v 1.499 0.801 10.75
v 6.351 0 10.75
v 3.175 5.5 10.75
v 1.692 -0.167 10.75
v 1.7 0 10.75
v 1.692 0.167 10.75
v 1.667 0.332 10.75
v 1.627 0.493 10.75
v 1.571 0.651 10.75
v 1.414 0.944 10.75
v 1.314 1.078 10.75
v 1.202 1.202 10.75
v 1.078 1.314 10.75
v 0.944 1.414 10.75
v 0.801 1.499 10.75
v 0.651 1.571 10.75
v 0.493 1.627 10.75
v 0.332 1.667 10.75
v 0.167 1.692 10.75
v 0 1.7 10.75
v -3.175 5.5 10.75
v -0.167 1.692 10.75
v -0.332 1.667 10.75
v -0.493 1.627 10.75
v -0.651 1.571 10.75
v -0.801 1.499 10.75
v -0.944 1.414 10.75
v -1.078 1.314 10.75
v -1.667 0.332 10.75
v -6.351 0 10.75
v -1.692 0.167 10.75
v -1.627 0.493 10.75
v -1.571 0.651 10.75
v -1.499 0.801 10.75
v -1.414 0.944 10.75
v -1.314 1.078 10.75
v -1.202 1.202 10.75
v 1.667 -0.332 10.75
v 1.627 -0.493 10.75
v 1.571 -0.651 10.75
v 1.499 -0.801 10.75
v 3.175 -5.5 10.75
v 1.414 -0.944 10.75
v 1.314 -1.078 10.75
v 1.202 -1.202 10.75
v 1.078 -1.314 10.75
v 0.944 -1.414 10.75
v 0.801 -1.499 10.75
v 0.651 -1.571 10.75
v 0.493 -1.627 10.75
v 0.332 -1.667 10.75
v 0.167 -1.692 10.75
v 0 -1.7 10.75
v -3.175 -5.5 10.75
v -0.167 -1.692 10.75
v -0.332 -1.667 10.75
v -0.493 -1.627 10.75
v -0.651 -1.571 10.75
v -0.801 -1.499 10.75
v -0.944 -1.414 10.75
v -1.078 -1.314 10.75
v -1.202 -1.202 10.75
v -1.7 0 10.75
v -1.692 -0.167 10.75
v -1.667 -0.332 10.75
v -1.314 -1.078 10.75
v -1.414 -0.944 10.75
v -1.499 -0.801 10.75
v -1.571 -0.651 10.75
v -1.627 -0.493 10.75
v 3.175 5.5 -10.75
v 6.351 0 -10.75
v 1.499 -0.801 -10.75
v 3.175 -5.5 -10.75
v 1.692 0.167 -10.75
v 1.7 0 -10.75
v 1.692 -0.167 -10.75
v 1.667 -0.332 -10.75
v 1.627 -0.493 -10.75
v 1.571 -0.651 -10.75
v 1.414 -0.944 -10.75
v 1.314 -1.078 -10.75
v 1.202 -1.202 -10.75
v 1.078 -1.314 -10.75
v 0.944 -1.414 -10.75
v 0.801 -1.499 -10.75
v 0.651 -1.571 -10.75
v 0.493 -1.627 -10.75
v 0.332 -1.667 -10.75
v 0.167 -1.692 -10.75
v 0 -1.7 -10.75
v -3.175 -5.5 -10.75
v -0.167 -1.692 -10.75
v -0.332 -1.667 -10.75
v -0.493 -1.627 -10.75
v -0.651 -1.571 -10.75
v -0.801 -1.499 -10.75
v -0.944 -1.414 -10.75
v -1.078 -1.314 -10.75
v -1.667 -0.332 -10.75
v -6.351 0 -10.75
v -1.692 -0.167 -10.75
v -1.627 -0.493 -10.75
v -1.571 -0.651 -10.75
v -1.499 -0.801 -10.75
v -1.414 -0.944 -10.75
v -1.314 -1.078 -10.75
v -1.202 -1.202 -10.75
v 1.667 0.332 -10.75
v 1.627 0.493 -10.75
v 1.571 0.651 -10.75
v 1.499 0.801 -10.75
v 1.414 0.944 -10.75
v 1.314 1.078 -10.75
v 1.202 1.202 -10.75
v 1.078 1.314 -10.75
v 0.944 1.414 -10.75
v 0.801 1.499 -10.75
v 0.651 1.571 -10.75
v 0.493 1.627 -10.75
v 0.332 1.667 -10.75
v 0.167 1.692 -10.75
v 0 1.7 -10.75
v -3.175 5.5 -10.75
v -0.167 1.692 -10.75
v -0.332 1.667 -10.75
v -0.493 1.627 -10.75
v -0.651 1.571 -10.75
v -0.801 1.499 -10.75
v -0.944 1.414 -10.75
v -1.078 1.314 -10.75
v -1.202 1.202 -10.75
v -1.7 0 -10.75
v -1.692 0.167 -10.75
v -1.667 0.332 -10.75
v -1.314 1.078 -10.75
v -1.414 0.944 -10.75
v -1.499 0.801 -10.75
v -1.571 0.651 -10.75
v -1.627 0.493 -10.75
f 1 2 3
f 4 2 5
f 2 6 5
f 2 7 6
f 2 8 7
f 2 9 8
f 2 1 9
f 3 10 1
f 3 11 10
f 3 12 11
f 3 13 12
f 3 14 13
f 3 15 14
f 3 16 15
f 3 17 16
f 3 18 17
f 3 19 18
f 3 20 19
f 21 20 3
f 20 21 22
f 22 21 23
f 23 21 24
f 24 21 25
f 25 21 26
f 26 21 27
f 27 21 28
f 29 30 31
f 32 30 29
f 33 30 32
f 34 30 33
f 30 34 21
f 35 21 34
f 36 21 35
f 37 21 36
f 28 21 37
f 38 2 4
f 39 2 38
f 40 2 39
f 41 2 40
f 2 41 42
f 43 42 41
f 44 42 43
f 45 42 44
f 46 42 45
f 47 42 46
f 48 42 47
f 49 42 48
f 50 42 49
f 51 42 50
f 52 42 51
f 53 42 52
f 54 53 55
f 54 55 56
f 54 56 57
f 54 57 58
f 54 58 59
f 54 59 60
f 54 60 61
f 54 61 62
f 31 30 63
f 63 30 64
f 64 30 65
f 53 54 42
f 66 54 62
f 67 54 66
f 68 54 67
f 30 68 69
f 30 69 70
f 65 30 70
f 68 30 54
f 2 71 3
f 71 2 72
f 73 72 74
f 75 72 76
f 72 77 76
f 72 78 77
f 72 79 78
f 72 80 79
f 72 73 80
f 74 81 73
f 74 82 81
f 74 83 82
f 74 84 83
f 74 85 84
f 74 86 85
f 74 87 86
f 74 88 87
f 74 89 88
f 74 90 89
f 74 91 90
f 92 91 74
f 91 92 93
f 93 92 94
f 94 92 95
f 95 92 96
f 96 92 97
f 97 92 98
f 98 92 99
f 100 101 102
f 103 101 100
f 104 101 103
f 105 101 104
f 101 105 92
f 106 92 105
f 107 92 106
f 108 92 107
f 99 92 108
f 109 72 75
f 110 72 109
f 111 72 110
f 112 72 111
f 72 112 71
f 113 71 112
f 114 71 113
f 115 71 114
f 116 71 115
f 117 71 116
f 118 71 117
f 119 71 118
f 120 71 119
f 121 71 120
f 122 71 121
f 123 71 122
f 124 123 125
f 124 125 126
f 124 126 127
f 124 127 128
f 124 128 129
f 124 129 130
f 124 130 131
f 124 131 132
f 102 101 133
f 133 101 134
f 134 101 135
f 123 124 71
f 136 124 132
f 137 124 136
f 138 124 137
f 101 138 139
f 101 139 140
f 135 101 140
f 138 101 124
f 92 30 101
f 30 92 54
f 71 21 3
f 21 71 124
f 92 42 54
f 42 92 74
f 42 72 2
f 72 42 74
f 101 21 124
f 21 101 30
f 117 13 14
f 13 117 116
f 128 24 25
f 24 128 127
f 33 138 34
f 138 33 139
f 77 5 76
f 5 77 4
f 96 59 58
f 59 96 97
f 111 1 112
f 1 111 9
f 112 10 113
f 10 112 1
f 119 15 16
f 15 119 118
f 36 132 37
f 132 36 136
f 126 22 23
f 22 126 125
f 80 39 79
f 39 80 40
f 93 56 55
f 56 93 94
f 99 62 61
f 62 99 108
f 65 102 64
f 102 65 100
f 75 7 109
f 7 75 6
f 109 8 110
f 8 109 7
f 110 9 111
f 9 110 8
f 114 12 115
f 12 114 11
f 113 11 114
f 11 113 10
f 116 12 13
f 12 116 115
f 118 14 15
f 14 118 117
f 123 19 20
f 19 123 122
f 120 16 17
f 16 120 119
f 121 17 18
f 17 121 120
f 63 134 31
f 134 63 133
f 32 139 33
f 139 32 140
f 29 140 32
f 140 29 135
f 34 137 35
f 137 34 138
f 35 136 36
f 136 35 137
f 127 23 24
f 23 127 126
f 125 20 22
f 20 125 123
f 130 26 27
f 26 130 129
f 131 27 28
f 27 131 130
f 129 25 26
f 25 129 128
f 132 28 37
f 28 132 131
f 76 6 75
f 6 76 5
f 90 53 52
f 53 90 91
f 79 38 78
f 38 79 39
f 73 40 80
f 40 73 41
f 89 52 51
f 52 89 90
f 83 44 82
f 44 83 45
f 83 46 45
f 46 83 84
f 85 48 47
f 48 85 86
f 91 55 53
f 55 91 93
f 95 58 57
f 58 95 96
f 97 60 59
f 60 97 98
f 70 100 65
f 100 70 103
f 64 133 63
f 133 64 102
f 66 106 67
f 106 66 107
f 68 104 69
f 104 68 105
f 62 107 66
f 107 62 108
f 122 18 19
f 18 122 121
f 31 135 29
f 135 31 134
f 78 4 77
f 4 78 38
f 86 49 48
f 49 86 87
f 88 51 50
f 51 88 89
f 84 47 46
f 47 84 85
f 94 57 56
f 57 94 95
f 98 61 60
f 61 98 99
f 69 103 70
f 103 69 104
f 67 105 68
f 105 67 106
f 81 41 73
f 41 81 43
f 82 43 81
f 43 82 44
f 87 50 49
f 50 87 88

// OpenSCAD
module hexagon(size, height) {
  boxWidth = size / sqrt(3);
  for (r = [-60, 0, 60]) rotate([0,0,r]) cube([boxWidth, size, height], true);
}

module pilar(ph = 21.5, disp = 2.5) {
  difference() {
    hexagon(11, ph);
    //translate([0, disp, 0])
    cylinder(d = 3.4, h = ph + 1, center = true, $fn = 64);
  }
}


//rotate([90, 0, 90])
pilar();
